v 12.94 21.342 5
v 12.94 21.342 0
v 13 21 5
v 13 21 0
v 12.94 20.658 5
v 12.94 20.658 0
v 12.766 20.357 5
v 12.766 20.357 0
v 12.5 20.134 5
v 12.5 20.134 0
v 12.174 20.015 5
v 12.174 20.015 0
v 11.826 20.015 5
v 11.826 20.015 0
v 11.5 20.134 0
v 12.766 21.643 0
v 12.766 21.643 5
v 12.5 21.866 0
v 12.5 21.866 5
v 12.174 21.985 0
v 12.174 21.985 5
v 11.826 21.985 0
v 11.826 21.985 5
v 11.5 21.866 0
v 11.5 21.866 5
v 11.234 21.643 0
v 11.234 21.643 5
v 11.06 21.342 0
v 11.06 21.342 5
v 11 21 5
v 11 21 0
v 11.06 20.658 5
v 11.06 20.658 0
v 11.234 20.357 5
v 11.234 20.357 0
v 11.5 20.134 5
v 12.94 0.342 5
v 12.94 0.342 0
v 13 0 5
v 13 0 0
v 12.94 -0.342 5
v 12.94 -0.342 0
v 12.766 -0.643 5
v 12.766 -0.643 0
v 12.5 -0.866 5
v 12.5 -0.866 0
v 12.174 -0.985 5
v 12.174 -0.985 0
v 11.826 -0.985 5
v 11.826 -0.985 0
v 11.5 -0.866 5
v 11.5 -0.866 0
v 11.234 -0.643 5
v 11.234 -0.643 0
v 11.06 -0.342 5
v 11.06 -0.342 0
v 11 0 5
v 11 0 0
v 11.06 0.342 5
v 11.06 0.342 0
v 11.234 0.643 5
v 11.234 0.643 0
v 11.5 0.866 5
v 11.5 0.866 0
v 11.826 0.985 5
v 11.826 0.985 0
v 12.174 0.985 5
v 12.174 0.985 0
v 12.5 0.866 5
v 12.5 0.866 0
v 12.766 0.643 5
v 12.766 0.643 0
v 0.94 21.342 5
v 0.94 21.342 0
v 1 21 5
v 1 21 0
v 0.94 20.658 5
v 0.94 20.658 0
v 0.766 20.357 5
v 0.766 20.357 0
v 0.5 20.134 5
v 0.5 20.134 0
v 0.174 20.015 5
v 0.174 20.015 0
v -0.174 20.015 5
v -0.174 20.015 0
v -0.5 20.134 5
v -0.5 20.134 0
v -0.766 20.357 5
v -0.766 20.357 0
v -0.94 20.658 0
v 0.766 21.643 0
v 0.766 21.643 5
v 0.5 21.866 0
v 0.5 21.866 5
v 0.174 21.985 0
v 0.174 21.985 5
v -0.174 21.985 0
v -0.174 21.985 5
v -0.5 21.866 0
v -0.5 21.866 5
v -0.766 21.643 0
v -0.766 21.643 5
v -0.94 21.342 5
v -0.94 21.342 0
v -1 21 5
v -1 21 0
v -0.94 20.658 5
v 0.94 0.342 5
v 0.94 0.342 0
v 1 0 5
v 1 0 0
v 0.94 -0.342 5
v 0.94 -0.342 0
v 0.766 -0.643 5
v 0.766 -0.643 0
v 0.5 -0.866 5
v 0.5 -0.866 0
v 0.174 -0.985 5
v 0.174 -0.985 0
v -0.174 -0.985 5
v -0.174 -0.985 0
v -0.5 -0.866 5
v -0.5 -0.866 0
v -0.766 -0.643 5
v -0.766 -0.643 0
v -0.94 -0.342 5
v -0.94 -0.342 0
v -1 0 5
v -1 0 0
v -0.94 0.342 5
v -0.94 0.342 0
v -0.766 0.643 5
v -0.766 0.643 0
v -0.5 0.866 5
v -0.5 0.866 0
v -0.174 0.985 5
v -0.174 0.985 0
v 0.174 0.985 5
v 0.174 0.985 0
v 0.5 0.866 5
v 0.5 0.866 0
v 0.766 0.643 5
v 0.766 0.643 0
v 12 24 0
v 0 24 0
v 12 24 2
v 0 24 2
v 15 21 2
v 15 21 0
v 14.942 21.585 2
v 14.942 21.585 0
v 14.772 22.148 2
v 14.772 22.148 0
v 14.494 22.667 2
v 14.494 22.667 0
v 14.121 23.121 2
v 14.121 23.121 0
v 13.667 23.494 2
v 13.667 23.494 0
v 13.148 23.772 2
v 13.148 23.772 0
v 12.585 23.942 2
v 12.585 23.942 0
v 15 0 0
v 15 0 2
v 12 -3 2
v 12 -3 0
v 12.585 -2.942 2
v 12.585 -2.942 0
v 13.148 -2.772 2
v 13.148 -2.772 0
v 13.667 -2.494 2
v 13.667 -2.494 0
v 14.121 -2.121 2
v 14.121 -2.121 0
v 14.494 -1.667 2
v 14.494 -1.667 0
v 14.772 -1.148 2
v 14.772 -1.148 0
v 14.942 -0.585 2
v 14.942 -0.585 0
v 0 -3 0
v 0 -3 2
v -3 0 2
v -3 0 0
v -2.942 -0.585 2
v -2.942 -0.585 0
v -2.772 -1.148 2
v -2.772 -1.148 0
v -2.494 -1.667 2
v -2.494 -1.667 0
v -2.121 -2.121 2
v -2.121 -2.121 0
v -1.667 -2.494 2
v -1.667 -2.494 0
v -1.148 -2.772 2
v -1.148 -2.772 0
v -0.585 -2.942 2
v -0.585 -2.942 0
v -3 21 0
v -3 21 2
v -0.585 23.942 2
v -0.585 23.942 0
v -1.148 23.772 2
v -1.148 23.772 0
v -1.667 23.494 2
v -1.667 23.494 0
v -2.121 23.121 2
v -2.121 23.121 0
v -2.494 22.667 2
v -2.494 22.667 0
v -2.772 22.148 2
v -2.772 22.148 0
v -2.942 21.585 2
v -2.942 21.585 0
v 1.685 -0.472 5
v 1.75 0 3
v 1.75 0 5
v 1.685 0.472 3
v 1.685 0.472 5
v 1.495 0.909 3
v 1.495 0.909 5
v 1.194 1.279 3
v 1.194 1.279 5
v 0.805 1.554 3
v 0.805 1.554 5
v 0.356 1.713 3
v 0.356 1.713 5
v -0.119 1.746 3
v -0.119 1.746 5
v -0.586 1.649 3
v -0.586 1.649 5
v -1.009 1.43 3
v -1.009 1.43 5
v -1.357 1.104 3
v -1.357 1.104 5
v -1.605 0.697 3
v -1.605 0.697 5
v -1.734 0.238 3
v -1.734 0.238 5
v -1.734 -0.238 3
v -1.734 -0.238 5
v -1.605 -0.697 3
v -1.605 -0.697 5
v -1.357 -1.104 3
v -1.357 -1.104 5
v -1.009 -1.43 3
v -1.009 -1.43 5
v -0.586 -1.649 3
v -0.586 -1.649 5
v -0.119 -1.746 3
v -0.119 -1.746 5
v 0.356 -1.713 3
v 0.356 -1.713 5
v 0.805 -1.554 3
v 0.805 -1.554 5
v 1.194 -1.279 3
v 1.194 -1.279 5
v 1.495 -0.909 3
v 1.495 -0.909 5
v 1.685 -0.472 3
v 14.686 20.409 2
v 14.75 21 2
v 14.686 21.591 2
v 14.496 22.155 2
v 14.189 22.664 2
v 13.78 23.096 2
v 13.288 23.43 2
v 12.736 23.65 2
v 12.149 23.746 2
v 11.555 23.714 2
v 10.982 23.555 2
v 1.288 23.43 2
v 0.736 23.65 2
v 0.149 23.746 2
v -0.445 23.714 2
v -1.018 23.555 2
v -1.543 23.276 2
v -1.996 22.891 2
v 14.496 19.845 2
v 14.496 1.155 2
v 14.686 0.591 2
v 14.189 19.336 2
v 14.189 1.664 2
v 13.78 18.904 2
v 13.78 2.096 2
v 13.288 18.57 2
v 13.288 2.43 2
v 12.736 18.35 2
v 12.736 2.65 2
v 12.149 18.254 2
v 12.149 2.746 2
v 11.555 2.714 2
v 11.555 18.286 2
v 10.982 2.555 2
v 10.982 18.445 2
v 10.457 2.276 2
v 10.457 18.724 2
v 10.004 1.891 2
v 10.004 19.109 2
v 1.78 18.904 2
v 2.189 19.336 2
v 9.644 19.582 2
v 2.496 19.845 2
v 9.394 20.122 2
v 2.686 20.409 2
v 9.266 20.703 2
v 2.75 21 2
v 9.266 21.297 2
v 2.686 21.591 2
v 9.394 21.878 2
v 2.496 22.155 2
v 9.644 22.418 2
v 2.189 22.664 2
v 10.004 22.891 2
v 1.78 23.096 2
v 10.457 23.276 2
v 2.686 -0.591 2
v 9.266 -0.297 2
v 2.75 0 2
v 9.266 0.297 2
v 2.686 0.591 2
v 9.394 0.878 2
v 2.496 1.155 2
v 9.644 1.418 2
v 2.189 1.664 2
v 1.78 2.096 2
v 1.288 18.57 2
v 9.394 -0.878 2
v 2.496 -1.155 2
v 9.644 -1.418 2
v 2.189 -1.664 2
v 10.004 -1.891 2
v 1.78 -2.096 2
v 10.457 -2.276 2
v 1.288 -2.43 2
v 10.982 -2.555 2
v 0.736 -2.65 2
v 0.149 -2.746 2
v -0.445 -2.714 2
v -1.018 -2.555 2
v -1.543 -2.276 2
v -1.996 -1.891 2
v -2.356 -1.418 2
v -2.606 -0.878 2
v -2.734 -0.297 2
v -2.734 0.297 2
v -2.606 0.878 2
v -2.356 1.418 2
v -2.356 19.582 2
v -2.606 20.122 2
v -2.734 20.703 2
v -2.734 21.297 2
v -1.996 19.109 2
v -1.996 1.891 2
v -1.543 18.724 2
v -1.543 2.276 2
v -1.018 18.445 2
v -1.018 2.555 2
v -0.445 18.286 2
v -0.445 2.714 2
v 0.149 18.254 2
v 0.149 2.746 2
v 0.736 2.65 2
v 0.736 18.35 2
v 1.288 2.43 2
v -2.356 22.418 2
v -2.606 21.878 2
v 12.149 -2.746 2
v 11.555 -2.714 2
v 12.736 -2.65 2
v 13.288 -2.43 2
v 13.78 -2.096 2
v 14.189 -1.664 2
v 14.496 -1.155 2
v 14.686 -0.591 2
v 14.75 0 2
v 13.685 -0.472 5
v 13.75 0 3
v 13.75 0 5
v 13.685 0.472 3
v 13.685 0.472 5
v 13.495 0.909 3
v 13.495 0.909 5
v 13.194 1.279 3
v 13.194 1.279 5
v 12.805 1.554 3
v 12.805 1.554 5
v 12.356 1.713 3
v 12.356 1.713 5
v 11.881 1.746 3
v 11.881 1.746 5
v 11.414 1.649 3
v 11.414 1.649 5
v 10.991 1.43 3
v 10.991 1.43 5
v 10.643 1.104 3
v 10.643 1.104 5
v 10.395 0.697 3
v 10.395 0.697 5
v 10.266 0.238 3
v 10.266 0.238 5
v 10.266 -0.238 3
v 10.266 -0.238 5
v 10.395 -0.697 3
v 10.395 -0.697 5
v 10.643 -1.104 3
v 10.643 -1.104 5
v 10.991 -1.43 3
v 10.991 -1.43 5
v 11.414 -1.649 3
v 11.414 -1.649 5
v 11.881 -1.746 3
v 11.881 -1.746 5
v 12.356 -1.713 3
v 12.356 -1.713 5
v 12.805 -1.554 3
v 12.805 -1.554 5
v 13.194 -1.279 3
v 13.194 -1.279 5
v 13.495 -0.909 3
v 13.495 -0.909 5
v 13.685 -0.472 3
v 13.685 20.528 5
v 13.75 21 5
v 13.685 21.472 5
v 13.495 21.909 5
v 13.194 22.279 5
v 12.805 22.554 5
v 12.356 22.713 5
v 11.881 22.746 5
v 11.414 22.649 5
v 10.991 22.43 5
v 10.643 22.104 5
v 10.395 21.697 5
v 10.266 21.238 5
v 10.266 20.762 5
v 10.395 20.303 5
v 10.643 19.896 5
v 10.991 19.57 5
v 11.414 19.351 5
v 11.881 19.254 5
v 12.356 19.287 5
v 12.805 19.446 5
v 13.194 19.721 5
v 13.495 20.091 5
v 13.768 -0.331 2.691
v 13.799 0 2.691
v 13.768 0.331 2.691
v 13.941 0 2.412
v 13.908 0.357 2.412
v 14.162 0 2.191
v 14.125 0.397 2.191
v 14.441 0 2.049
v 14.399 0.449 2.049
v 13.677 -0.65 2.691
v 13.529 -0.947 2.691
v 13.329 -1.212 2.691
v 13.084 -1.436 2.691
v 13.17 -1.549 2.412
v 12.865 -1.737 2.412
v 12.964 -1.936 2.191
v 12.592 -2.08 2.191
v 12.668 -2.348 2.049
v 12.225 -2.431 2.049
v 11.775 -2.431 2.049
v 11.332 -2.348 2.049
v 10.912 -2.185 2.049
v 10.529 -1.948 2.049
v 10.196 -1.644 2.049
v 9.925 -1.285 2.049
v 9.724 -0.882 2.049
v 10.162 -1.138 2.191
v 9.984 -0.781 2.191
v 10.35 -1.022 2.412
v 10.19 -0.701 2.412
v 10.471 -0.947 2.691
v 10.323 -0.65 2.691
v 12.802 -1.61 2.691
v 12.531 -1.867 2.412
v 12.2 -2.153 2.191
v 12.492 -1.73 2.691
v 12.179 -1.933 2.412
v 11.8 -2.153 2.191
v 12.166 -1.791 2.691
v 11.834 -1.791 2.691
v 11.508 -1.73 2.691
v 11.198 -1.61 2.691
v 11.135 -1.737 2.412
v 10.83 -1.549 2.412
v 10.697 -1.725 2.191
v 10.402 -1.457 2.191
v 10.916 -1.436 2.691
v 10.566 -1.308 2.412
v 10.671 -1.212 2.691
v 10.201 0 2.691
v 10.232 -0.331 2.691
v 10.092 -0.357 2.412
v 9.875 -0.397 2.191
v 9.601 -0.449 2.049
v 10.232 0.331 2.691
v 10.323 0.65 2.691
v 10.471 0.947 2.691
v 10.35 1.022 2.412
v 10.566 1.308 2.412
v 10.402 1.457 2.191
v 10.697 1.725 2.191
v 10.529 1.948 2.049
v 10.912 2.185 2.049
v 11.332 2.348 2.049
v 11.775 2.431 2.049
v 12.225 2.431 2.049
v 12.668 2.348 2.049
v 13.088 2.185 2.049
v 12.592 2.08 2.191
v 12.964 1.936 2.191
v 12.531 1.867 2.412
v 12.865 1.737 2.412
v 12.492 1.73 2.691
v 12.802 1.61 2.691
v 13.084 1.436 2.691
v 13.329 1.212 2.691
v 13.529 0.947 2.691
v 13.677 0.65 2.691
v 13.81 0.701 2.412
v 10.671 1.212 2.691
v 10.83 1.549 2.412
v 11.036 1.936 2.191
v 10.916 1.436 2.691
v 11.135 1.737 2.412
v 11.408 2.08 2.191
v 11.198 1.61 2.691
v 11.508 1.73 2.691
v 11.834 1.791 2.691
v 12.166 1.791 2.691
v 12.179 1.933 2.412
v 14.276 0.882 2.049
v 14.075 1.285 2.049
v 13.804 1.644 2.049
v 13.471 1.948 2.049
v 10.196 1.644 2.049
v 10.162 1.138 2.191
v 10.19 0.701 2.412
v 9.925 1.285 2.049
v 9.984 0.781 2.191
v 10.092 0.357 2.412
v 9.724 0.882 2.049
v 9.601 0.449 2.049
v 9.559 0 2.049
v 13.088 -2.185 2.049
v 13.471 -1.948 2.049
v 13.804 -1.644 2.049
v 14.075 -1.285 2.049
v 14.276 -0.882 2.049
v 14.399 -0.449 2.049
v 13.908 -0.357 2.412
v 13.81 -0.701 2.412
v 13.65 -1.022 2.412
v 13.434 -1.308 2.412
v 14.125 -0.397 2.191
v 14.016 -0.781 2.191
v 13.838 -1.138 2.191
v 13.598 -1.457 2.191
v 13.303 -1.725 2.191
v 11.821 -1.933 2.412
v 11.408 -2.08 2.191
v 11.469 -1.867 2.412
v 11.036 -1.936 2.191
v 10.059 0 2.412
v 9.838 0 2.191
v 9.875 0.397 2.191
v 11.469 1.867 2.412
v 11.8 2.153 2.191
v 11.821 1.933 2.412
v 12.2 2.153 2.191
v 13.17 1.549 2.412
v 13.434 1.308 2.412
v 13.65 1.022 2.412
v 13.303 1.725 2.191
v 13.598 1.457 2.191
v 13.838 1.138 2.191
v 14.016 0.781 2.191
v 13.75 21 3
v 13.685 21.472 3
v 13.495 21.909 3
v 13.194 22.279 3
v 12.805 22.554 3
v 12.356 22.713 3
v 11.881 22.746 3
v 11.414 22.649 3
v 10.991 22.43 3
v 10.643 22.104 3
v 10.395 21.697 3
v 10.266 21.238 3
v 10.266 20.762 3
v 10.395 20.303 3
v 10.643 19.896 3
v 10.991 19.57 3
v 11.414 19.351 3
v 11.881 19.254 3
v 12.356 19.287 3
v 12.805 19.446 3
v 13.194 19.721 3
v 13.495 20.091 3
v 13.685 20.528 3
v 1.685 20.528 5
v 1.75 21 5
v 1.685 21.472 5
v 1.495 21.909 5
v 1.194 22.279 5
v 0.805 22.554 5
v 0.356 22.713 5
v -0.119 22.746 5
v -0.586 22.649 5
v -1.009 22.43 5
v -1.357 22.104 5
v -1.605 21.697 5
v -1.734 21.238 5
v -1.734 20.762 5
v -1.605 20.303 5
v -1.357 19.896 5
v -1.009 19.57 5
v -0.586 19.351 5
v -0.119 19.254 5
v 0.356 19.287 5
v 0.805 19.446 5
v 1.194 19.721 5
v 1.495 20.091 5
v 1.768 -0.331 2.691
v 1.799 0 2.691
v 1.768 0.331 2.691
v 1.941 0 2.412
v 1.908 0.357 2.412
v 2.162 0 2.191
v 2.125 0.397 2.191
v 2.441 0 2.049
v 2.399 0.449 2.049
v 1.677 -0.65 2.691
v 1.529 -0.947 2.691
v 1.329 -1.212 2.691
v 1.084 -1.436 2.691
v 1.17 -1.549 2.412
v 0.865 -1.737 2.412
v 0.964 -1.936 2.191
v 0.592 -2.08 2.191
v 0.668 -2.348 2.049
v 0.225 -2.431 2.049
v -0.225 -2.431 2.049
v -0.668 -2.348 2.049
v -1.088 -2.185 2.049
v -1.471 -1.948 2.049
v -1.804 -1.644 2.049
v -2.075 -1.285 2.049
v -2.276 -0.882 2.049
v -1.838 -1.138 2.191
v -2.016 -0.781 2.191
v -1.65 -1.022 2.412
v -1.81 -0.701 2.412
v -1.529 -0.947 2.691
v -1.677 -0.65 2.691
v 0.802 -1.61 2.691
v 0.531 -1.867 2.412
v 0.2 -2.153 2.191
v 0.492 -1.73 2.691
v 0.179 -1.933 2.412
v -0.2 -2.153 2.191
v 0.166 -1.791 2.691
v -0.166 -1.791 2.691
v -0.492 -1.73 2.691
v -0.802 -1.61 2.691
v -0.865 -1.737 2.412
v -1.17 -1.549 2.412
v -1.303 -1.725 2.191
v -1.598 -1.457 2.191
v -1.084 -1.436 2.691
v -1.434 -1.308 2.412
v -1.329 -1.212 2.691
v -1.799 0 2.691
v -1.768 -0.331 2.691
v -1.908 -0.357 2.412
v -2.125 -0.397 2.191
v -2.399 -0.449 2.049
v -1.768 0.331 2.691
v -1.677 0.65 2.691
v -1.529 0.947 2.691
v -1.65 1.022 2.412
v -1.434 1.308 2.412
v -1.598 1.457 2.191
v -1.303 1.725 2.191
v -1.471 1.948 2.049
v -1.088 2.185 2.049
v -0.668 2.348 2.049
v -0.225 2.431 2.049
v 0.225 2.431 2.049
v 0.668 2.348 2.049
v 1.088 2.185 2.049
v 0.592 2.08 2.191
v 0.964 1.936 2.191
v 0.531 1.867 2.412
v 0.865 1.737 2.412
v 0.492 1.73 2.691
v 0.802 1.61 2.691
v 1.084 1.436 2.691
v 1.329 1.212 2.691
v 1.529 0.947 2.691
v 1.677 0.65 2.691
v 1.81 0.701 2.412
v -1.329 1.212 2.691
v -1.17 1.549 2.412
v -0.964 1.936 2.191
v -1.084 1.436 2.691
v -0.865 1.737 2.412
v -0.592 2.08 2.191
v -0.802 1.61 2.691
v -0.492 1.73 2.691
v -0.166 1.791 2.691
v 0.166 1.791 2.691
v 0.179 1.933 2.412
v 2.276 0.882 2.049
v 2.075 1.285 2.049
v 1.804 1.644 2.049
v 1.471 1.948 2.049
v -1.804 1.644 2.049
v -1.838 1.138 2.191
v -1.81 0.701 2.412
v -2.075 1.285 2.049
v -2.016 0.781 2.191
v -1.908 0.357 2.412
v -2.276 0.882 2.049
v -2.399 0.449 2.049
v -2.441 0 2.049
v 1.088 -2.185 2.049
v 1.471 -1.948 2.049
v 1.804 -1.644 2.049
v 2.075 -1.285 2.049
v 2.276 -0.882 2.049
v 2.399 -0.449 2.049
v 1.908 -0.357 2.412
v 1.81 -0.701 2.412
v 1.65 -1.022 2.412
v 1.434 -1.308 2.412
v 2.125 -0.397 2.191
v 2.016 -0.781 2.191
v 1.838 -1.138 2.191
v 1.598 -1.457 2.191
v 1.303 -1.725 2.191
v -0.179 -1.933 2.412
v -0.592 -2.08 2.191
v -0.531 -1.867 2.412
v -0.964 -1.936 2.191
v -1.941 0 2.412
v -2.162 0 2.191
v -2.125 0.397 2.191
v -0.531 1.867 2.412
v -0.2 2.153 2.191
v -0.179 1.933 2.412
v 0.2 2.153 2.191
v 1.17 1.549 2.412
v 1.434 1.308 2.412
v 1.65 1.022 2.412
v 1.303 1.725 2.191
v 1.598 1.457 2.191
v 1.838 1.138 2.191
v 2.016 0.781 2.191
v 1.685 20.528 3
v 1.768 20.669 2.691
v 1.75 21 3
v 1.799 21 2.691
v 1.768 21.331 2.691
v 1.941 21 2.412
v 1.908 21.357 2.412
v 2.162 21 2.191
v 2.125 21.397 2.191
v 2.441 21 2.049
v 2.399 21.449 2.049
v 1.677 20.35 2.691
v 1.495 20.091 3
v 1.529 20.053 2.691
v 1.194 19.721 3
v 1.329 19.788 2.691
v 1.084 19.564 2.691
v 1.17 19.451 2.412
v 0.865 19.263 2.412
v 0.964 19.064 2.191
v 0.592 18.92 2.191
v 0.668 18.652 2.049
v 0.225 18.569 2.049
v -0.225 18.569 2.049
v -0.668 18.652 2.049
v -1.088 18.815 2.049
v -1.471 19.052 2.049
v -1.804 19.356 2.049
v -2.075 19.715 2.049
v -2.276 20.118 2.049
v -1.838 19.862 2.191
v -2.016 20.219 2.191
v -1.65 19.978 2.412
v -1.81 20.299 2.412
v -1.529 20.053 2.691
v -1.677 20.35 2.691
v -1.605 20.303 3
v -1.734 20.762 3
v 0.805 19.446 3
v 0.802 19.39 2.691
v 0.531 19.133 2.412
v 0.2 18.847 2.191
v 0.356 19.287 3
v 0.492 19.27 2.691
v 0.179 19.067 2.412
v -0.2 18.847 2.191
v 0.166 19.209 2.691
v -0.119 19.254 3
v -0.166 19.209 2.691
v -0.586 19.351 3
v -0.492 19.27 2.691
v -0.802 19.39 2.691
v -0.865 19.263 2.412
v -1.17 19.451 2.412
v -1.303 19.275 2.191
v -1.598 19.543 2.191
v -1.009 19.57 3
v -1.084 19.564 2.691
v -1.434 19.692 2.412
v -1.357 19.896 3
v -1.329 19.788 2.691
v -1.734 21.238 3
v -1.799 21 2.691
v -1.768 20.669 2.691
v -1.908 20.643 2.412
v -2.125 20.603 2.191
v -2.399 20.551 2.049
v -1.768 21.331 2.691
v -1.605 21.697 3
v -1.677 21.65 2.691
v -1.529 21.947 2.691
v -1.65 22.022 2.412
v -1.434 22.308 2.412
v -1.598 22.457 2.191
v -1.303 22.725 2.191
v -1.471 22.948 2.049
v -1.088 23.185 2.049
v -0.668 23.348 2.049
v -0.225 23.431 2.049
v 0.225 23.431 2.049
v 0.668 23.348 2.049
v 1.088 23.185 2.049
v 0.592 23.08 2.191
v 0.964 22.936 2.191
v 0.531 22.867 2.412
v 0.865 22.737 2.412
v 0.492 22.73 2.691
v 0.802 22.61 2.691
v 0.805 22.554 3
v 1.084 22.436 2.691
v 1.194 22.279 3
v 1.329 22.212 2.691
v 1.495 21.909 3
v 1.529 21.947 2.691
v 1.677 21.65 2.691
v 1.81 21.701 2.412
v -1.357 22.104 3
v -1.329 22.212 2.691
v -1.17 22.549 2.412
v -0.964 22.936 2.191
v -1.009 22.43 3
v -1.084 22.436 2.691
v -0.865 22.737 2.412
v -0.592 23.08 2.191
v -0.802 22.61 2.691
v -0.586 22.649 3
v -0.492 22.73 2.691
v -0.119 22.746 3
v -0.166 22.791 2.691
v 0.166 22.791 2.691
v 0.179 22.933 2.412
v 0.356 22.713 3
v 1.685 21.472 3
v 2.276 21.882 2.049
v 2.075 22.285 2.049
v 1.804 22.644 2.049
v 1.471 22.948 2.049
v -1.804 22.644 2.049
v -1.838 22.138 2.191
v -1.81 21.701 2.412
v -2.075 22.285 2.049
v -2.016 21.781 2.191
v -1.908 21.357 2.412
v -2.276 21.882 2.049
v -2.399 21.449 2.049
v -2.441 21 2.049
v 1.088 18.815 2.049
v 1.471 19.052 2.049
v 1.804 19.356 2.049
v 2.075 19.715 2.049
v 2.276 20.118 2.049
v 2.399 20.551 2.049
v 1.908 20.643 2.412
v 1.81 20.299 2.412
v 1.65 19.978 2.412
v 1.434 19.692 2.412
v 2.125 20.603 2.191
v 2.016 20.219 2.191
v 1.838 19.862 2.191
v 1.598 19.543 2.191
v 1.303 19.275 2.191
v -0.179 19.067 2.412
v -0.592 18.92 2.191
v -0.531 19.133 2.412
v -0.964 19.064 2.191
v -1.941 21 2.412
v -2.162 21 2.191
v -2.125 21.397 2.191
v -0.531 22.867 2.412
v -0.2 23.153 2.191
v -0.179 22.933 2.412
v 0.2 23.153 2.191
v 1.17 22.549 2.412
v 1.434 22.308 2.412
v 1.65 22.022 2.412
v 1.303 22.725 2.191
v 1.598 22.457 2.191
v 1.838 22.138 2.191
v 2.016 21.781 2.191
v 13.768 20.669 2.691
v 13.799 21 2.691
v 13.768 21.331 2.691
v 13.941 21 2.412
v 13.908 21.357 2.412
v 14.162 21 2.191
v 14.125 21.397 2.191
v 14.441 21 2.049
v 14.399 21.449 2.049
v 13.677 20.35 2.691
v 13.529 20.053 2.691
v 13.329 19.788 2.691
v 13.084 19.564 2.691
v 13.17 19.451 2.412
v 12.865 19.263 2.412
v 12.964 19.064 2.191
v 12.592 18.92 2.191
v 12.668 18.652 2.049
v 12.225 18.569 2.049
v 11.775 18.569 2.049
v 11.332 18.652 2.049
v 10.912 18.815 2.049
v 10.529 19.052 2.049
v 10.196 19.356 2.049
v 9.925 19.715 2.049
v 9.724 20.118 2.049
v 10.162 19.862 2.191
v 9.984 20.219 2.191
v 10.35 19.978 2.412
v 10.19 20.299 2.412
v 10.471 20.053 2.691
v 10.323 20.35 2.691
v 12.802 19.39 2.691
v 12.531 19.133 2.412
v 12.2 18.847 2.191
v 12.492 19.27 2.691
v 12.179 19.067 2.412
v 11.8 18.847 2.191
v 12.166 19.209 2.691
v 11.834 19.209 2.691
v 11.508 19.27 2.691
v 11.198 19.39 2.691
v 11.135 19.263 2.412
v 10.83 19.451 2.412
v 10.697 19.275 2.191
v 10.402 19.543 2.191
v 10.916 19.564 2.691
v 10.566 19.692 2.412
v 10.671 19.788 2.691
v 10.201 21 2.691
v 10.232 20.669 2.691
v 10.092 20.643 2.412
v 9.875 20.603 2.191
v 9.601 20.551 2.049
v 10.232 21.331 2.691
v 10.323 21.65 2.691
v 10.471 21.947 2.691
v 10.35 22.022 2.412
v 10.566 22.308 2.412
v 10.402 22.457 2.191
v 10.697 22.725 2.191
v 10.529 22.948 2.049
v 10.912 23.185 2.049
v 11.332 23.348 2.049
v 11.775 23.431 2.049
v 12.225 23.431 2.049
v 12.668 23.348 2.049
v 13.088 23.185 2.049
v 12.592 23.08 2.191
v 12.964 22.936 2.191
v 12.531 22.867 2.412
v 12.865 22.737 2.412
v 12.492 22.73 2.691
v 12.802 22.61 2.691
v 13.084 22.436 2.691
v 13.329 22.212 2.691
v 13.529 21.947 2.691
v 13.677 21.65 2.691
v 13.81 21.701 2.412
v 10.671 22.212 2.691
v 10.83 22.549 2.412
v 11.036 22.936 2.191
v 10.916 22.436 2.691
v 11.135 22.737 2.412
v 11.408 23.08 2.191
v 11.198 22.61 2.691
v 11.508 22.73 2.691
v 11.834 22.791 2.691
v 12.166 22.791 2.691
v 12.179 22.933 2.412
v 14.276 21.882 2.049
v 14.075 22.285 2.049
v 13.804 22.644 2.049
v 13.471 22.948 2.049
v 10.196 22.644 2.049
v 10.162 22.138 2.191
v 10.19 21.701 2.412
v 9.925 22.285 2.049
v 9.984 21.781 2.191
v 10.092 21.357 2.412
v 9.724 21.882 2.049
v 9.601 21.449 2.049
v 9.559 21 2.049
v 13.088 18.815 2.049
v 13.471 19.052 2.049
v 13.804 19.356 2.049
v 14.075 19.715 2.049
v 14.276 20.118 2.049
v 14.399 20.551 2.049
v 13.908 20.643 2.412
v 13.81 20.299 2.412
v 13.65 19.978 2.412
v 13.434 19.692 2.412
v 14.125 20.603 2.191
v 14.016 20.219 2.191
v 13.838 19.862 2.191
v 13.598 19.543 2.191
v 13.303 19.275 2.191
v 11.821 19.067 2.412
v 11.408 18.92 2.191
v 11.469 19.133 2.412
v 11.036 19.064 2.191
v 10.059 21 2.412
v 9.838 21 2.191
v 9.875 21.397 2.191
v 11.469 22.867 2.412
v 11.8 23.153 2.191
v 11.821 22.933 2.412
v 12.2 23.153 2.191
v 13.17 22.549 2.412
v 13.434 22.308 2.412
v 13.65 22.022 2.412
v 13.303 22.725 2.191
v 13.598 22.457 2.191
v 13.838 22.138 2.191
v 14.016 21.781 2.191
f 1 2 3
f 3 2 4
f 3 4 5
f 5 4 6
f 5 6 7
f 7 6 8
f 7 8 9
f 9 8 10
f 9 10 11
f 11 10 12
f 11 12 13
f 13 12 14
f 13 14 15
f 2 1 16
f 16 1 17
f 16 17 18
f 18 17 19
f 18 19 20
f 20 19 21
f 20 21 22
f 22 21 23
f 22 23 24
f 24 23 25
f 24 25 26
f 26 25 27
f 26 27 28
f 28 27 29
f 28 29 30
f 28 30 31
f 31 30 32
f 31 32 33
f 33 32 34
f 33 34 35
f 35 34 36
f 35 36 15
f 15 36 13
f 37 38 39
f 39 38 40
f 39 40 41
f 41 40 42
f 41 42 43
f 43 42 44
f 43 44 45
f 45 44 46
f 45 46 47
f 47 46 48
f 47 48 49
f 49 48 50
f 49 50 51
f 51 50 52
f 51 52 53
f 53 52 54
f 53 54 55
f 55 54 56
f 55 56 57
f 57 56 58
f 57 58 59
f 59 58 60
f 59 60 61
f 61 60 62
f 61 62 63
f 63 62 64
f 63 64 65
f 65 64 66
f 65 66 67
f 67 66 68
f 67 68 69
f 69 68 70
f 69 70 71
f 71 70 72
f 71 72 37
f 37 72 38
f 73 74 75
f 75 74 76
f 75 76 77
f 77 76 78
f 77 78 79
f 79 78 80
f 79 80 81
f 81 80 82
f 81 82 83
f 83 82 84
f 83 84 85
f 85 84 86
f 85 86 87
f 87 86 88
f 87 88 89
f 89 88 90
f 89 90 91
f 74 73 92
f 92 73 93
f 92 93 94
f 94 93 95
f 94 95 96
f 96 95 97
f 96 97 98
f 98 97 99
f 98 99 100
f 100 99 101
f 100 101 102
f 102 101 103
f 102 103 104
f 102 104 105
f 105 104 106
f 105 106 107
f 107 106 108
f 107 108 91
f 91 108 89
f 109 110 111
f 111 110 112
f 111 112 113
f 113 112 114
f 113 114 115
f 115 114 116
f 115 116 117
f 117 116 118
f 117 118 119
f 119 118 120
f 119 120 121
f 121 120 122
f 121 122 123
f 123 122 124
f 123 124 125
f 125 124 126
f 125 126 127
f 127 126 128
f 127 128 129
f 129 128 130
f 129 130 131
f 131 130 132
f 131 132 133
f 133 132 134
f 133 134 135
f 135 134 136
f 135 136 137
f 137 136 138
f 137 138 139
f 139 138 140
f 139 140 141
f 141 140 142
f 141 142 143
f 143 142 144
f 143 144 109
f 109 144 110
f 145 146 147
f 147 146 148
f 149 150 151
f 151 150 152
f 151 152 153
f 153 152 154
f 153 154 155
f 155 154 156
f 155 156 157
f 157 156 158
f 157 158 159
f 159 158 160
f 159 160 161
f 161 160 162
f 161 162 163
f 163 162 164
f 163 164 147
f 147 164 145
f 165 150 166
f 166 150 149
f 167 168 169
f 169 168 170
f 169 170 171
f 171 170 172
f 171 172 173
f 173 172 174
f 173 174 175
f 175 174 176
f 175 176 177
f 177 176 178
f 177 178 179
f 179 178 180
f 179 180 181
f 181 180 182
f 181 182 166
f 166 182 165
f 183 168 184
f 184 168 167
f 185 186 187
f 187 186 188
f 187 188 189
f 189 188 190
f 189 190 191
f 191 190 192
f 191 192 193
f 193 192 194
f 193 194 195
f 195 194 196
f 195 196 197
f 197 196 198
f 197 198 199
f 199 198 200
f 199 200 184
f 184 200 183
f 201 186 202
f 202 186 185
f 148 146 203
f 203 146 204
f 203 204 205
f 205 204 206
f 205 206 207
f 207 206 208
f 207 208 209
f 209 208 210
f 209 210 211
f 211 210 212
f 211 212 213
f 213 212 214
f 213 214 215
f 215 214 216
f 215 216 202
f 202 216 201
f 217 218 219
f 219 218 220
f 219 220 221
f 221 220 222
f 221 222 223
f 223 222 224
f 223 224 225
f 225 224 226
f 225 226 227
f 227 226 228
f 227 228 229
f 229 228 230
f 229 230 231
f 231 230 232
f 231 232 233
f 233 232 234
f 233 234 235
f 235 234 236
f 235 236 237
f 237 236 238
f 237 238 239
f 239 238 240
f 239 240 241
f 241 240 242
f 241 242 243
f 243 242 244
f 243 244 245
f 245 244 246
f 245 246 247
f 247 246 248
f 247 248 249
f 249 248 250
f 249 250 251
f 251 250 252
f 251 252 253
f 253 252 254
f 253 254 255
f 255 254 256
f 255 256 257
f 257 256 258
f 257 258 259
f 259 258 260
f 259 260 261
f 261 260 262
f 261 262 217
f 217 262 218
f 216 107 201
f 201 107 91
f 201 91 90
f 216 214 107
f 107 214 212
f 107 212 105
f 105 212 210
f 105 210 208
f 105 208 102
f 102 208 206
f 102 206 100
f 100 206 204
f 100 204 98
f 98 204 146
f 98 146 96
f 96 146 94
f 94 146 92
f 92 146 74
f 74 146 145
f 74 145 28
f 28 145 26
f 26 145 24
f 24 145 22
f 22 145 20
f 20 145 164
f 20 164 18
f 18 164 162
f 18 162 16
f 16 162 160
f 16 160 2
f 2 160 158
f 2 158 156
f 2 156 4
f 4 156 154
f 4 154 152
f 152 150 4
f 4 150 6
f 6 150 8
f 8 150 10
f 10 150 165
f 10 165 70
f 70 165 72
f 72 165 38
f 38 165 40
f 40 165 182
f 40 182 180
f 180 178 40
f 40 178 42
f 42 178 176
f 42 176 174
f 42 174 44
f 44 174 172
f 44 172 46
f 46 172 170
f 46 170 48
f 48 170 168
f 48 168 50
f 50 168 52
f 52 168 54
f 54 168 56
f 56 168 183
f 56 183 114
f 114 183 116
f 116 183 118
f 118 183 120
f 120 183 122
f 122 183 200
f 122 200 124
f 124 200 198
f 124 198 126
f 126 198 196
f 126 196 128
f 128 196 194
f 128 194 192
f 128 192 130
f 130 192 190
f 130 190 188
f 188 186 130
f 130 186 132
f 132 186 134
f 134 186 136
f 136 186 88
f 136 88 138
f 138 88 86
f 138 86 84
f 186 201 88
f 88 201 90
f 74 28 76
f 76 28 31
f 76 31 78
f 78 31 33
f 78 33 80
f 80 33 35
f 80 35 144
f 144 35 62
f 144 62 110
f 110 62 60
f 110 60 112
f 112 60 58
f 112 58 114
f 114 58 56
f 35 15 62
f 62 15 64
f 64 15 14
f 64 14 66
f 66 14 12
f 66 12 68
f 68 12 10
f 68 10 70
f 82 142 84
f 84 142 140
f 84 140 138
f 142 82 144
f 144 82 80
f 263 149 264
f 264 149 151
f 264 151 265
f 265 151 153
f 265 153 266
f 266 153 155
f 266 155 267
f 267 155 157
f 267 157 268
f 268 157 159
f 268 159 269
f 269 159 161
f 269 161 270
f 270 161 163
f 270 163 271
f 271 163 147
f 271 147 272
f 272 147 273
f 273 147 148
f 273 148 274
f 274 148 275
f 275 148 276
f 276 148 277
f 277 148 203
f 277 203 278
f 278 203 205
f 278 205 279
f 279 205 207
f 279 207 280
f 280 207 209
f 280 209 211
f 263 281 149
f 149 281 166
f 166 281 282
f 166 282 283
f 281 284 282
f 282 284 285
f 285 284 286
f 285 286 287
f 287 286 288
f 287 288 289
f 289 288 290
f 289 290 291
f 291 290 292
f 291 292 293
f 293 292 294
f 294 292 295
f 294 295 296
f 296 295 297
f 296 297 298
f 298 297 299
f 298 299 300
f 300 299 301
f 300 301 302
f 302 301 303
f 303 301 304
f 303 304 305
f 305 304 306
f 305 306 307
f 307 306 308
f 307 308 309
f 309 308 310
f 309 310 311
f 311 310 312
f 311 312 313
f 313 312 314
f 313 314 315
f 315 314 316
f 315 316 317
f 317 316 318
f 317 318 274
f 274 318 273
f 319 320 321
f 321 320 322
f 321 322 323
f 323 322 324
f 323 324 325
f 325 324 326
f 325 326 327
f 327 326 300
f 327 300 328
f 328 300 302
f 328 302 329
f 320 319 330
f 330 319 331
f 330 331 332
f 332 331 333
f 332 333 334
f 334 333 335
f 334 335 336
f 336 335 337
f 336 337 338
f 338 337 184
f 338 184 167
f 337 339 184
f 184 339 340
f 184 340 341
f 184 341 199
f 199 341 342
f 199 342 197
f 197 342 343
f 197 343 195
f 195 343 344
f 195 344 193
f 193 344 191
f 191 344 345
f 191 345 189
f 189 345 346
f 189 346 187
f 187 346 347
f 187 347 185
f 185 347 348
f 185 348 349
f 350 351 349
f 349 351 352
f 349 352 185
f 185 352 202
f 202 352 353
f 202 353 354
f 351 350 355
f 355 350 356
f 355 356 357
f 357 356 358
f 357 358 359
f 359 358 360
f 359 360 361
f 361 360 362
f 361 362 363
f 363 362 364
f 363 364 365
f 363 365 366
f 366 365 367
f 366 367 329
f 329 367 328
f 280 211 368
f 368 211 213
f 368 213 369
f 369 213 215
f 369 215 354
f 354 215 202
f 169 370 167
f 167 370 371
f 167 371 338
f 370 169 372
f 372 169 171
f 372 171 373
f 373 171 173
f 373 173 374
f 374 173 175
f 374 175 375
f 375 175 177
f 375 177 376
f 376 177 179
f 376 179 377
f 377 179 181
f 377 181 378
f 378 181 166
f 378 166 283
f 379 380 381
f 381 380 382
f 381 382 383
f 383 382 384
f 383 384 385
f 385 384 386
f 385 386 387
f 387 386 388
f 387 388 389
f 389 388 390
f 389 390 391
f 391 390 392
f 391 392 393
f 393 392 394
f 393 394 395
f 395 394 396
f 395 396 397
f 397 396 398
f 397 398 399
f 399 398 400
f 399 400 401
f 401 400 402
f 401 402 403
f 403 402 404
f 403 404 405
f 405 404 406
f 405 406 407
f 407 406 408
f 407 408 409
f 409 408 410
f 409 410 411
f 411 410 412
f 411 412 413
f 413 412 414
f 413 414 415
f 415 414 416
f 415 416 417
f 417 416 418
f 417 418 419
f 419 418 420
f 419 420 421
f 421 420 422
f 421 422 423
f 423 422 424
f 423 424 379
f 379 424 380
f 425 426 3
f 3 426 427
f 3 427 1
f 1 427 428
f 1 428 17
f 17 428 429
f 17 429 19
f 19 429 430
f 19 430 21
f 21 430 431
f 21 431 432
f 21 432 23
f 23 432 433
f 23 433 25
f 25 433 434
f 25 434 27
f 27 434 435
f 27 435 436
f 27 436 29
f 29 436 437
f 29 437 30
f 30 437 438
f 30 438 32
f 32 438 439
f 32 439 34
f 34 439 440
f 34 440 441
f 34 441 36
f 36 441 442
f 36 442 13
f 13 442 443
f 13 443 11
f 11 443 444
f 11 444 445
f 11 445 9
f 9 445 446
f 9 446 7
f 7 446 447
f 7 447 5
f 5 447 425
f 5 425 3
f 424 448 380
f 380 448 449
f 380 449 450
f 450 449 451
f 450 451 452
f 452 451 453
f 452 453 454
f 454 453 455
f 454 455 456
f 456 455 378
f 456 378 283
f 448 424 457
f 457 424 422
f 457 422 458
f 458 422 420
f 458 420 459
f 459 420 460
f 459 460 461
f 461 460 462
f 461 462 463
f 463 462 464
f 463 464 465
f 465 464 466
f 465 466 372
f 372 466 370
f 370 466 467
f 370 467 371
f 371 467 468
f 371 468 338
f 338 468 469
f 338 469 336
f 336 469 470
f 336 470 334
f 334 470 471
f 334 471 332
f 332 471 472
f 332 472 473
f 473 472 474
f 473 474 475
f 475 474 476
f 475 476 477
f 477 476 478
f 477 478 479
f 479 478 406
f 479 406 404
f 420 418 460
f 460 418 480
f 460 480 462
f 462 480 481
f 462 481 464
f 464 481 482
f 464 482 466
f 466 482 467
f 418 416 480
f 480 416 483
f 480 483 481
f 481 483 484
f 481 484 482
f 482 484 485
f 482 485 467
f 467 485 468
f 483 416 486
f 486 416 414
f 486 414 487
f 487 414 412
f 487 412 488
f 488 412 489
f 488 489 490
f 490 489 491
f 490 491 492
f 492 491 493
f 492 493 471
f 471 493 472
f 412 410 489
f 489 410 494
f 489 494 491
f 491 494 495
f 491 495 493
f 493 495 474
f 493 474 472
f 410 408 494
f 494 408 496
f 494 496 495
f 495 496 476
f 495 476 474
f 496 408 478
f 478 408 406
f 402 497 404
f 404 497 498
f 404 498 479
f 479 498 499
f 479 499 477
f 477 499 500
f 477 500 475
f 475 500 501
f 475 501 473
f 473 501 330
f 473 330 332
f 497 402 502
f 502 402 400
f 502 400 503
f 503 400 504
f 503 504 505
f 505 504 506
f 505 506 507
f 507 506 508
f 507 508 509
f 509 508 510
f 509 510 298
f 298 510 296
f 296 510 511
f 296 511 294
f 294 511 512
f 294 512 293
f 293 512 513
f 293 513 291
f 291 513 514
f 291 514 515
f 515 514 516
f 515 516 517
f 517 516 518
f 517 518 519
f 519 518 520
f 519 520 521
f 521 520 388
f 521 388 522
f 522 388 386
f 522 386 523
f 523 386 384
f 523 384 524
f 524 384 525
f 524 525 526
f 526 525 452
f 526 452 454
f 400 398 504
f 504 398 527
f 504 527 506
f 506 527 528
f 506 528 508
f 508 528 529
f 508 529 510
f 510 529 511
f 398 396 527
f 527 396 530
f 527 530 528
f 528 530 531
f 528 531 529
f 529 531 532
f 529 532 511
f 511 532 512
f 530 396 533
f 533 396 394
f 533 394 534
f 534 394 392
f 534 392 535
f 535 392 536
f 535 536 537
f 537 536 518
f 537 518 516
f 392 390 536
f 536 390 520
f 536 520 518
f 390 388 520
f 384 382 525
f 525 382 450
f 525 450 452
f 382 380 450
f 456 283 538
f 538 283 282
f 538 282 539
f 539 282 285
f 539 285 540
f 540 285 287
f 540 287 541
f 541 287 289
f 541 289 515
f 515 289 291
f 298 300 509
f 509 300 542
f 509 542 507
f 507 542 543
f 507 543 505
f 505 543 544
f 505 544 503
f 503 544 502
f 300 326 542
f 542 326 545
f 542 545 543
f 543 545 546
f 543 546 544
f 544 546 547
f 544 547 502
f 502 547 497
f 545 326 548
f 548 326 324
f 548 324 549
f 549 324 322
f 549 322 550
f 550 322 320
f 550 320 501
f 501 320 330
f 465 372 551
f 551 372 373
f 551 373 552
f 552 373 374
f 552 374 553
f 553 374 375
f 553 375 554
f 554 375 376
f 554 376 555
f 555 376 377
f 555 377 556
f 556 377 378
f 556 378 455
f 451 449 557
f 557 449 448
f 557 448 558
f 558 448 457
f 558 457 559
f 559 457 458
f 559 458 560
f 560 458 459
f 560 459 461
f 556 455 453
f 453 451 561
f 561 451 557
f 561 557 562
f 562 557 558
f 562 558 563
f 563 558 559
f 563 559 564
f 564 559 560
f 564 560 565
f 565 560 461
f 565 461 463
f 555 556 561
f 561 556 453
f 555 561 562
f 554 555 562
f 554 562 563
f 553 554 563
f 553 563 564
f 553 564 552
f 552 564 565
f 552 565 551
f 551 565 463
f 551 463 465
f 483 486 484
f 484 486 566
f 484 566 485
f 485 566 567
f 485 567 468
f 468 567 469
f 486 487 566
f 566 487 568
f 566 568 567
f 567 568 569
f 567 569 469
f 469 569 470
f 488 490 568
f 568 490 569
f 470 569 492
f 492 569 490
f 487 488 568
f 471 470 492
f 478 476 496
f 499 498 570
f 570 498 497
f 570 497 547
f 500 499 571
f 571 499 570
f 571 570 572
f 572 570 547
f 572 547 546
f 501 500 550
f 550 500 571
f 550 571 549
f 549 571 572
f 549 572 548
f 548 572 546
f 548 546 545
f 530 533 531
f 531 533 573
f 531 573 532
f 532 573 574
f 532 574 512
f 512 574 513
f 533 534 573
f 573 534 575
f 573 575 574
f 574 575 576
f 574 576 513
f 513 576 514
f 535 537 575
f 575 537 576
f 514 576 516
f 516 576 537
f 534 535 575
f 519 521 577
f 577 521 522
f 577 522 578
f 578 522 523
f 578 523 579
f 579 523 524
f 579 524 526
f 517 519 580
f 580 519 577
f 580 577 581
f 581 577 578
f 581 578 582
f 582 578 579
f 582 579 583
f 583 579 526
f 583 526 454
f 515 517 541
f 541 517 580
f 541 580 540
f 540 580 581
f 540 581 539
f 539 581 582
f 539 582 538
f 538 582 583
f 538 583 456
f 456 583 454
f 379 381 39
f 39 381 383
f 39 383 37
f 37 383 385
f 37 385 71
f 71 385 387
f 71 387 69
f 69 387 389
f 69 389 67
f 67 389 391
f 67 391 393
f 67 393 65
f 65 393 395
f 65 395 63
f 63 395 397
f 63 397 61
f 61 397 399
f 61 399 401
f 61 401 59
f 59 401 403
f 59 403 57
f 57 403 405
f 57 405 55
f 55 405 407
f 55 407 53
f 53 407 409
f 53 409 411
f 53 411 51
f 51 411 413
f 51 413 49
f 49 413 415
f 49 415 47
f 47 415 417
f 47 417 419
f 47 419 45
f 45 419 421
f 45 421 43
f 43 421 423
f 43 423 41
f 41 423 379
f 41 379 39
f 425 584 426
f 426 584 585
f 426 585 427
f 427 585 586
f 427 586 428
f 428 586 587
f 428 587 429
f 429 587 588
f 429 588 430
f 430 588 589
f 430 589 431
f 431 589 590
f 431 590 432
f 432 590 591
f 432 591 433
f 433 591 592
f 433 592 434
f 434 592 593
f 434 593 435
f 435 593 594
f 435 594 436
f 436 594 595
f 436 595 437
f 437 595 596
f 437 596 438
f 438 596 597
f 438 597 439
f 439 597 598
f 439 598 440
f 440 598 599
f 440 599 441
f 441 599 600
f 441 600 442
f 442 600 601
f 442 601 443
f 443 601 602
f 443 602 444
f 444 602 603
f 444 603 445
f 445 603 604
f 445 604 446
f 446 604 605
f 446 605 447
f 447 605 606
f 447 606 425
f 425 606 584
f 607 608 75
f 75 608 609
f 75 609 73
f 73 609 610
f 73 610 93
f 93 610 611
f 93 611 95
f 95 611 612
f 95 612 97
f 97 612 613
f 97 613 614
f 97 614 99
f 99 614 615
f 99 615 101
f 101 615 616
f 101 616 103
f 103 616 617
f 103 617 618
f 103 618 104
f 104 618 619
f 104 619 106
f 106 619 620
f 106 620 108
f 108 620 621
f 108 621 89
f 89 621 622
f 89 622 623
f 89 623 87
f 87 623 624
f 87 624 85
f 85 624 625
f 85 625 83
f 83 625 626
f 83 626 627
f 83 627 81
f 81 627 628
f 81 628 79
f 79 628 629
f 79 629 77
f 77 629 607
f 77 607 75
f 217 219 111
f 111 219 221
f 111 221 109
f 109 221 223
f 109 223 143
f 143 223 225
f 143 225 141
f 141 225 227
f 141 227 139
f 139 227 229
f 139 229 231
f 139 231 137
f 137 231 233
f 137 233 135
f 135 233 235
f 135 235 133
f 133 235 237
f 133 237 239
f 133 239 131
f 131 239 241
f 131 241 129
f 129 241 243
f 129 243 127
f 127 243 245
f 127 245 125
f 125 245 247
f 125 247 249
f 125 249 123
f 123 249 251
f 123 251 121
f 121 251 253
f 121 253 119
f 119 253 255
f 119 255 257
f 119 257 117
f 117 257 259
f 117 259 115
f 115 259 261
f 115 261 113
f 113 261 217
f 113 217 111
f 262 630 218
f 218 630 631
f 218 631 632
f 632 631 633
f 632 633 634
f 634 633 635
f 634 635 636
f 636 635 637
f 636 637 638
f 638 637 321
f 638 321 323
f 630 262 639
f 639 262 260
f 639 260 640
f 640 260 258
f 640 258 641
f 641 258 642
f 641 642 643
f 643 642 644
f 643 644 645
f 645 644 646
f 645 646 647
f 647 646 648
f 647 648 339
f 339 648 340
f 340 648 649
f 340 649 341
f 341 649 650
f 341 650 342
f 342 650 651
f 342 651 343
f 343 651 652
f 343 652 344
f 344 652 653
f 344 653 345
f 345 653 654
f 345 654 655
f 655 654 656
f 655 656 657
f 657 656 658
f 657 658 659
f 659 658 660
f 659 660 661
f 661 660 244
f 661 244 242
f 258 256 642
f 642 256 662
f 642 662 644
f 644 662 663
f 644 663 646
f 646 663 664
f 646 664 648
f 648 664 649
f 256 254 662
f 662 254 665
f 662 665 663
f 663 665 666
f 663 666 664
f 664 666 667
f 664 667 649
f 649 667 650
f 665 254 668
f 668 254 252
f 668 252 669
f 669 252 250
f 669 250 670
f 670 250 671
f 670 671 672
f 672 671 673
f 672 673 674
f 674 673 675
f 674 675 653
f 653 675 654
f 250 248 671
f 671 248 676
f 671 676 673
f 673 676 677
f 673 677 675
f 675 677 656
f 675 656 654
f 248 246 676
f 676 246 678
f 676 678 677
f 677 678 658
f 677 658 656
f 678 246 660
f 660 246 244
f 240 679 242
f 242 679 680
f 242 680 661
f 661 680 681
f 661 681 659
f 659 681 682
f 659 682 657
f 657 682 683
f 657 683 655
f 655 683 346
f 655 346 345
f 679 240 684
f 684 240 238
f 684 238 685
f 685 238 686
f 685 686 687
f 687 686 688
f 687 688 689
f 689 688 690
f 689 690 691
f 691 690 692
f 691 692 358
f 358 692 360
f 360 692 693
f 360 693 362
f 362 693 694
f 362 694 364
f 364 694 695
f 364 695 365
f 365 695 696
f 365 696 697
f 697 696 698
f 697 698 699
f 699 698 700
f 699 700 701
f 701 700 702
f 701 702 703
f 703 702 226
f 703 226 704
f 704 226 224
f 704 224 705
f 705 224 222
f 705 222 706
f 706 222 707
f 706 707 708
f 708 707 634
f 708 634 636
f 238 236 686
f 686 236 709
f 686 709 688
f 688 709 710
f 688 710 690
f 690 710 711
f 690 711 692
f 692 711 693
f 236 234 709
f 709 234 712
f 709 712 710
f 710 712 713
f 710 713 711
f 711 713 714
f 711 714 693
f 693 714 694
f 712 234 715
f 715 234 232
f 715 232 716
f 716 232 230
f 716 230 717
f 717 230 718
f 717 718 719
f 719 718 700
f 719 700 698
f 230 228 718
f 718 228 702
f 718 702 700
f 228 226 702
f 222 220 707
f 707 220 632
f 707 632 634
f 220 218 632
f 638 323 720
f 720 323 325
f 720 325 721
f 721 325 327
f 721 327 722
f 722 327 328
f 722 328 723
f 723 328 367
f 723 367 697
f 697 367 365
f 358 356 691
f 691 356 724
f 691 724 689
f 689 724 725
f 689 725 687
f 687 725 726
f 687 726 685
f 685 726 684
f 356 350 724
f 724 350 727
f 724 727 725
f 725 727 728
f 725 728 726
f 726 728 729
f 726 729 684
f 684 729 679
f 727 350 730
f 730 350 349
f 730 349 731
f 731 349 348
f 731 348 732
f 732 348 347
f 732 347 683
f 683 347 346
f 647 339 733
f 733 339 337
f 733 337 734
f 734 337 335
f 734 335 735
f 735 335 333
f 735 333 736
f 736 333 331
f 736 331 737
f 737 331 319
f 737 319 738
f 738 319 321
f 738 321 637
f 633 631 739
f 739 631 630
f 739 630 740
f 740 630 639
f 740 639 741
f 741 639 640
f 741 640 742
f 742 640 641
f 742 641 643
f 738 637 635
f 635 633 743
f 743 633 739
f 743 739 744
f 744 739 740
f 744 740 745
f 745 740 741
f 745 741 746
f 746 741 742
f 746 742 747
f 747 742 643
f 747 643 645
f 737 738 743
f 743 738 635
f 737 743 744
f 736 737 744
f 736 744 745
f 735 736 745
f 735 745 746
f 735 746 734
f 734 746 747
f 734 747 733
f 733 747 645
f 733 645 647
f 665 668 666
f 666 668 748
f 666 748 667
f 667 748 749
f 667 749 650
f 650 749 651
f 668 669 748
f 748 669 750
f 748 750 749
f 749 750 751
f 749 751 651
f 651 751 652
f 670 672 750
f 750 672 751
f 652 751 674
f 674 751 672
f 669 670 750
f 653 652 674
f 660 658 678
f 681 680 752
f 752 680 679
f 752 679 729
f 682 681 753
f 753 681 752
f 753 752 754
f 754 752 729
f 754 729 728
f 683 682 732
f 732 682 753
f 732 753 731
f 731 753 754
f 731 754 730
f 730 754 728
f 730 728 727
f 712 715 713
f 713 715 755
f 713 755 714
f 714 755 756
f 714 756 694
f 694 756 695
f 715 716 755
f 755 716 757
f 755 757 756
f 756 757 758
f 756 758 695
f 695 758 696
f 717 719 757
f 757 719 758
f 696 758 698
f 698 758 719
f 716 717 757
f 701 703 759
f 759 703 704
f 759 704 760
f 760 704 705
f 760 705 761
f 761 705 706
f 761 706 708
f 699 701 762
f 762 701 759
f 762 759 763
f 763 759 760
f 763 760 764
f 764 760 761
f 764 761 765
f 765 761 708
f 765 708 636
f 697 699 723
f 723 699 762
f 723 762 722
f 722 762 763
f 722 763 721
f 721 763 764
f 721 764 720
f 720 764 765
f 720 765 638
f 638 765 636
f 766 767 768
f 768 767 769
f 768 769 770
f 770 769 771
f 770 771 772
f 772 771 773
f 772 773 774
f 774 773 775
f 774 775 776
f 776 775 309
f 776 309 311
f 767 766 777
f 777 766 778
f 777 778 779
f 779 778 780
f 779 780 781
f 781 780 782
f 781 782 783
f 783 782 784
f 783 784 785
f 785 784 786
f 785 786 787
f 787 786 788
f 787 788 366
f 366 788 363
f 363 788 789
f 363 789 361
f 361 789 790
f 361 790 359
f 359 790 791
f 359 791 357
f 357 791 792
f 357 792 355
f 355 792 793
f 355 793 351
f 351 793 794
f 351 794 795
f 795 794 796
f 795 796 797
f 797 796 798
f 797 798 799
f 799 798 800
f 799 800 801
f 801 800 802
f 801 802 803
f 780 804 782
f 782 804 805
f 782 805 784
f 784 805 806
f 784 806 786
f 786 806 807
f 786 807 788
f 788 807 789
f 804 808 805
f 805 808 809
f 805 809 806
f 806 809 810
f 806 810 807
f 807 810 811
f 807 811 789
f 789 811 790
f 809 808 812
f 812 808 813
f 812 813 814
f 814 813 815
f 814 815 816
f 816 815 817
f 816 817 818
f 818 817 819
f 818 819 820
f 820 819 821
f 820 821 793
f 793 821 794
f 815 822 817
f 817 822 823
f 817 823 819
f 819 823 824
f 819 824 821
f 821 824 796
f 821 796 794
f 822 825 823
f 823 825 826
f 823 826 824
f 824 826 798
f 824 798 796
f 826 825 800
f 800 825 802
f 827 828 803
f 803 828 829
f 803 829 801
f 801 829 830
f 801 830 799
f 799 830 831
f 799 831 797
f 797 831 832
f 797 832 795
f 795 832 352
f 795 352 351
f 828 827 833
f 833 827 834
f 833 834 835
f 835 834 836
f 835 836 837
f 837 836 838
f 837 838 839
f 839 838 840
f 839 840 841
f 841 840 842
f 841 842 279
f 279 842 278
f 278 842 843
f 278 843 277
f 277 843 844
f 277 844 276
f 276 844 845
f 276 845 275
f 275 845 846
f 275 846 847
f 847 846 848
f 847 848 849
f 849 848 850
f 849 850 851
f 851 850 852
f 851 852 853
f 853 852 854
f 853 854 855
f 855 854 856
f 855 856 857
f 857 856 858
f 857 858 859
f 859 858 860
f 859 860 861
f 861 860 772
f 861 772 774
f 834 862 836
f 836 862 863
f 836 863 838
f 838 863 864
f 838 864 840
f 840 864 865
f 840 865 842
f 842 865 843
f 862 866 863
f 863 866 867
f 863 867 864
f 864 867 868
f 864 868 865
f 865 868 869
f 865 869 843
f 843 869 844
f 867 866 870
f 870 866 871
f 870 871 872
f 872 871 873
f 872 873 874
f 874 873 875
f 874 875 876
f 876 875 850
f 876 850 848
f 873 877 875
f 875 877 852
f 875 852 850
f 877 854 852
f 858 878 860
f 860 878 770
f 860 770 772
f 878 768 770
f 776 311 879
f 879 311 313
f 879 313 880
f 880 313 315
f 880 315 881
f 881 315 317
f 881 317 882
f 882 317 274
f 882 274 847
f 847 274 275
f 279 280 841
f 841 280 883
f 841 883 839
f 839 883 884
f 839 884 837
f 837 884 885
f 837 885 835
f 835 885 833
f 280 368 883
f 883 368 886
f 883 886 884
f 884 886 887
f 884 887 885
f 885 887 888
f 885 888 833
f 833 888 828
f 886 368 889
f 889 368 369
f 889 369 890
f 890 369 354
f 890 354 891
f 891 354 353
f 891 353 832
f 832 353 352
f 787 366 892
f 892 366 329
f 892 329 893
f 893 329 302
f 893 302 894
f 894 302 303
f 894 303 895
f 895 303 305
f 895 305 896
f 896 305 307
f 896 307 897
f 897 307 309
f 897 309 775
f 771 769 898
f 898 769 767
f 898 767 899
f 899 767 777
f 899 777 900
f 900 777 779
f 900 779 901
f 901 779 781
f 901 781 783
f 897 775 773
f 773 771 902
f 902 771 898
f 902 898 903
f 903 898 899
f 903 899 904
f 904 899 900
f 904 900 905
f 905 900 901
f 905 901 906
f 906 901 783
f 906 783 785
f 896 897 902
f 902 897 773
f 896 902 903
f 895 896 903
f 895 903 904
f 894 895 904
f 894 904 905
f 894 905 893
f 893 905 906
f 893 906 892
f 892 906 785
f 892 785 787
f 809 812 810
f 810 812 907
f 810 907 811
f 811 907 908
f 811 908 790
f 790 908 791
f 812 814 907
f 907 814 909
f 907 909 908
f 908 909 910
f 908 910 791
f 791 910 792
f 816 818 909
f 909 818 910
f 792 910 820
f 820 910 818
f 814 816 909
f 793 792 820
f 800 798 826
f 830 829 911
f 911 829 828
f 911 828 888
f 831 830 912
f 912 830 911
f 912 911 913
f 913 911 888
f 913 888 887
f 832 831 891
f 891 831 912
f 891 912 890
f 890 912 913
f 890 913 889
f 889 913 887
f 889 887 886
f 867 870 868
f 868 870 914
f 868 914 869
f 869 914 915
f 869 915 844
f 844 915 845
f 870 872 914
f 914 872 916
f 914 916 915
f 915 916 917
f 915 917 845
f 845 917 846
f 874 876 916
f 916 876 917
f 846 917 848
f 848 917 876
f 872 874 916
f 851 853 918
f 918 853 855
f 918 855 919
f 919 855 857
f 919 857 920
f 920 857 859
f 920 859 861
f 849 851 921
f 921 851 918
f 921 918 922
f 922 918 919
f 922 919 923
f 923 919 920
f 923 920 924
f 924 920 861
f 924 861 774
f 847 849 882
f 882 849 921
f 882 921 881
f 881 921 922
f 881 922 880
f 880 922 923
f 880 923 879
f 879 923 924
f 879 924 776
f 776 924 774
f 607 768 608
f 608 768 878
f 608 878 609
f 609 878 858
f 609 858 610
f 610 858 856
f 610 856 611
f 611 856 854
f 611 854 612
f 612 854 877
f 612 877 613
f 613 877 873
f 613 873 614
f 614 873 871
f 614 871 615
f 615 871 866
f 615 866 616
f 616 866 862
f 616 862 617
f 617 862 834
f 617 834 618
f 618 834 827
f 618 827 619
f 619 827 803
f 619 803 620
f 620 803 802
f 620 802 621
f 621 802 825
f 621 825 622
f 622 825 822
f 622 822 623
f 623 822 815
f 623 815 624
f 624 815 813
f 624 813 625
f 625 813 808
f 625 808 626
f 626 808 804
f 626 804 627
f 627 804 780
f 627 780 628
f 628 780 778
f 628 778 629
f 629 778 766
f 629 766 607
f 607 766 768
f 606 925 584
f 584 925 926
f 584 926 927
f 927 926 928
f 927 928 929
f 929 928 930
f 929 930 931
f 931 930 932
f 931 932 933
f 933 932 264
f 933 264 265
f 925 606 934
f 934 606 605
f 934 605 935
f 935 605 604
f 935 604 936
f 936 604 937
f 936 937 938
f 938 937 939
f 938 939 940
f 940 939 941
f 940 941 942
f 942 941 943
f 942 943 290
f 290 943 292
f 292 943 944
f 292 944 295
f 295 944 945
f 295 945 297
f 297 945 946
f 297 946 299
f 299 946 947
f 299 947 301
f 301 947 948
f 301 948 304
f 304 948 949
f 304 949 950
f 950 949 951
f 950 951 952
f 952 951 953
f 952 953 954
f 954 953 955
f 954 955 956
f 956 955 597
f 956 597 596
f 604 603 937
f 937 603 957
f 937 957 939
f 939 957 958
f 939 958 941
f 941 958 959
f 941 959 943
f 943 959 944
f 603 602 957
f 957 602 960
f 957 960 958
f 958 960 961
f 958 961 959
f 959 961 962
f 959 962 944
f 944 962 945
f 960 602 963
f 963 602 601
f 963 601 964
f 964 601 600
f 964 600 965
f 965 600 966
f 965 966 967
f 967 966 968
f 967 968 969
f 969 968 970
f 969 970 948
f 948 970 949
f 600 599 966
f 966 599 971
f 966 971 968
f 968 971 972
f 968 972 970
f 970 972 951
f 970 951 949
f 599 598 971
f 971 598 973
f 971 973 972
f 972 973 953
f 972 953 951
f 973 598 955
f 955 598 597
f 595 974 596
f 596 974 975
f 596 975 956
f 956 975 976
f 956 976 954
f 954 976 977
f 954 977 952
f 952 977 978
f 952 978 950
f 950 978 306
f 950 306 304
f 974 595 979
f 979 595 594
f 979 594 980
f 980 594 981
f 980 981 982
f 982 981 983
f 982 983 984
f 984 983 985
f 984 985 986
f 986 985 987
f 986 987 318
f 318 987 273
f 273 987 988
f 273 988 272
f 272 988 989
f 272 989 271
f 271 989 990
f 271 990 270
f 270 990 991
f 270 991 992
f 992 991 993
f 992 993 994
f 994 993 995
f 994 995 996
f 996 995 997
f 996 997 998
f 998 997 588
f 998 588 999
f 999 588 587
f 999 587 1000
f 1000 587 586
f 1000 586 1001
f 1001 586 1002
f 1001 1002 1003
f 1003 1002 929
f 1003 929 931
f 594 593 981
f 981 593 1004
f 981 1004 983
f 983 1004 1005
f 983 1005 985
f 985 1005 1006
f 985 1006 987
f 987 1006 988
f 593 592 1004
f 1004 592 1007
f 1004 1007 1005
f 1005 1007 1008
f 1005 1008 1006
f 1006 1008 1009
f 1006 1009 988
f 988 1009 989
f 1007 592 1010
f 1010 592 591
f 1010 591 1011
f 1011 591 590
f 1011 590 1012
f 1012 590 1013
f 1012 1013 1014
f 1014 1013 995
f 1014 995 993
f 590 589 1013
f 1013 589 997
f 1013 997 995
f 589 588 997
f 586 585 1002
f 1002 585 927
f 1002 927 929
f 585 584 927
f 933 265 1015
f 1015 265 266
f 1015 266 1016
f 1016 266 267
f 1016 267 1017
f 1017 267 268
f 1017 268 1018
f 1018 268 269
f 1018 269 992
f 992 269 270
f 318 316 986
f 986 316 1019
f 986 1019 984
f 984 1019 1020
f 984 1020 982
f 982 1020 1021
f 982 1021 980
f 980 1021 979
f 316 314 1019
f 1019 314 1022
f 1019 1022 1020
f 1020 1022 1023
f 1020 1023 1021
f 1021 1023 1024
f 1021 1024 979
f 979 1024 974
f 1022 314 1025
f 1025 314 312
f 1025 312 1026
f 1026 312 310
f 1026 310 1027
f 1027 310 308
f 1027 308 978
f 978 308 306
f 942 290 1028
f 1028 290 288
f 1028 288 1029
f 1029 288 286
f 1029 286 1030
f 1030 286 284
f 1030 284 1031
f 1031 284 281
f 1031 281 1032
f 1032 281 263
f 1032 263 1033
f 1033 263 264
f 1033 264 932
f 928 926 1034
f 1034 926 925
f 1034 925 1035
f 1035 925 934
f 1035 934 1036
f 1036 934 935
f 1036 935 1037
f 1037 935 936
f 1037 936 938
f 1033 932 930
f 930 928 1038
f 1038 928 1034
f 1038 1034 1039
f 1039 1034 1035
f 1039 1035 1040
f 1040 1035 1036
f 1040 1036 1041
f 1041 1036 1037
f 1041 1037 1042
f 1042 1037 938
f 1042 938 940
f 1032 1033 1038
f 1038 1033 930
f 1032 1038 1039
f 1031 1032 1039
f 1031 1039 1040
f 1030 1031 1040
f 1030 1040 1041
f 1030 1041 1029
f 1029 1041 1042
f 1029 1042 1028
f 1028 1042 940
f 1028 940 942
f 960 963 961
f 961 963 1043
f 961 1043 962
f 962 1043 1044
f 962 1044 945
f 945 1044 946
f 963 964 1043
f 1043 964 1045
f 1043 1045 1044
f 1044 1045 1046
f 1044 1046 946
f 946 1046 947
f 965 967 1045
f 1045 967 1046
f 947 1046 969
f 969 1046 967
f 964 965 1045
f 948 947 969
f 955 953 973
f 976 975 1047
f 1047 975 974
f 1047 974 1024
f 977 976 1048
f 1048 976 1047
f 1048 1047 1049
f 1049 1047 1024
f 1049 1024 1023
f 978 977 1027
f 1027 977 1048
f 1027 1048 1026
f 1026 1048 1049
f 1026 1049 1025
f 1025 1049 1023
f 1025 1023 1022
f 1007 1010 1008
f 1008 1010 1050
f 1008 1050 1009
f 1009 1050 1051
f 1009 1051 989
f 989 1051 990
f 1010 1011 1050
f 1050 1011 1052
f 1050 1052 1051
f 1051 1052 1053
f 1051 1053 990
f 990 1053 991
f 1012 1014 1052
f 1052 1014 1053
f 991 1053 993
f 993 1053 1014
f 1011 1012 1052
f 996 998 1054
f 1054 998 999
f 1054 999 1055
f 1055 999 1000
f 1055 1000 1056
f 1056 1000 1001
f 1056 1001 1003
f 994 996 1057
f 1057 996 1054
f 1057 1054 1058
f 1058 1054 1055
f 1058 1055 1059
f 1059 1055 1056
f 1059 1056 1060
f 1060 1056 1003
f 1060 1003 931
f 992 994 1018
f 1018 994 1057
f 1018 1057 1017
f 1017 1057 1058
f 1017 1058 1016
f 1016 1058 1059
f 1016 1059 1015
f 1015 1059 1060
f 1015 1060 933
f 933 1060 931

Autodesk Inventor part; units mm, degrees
ref_plane "YZ Plane" through (0, 0, 0) normal (1, 0, 0) x (0, 1, 0)
ref_plane "XZ Plane" through (0, 0, 0) normal (0, 1, 0) x (-1, 0, 0)
ref_plane "XY Plane" through (0, 0, 0) normal (0, 0, 1) x (1, 0, 0)
sketch "Náčrt1" plane through (0, 0, 0) normal (0, 0, 1) x (1, 0, 0)
  circle A0 centre (0, 0) radius 1
  circle A1 centre (12, 0) radius 1
  circle A2 centre (0, 21) radius 1
  circle A3 centre (12, 21) radius 1
  line L0 (12, 24) -> (0, 24)
  arc A4 (0, 24) -> (-3, 21) centre (0, 21) ccw
  line L1 (-3, 21) -> (-3, 0)
  arc A5 (-3, 0) -> (0, -3) centre (0, 0) ccw
  line L2 (0, -3) -> (12, -3)
  arc A6 (12, -3) -> (15, 0) centre (12, 0) ccw
  line L3 (15, 0) -> (15, 21)
  arc A7 (15, 21) -> (12, 24) centre (12, 21) ccw
  dimension "d0" = 2
  dimension "d1" = 10
extrude "Vysunutí1" add sketch "Náčrt1" along normal blind 2
sketch "Náčrt2" plane through (0, 0, 2) normal (0, 0, 1) x (1, 0, 0)
  circle A0 centre (0, 0) radius 1 projected
  circle A1 centre (0, 0) radius 1
  line L0 (0, -3) -> (12, -3) projected
  circle A2 centre (12, 0) radius 1
  line L1 (-3, 21) -> (-3, 0) projected
  line L2 (15, 0) -> (15, 21) projected
  circle A3 centre (0, 21) radius 1
  circle A4 centre (12, 21) radius 1
  circle A5 centre (0, 21) radius 1.75
  circle A6 centre (12, 21) radius 1.75
  circle A7 centre (12, 0) radius 1.75
  circle A8 centre (0, 0) radius 1.75
  dimension "d10" = 0.75
  dimension "d11" = 0.75
  dimension "d12" = 0.75
  dimension "d14" = 0.75
extrude "Vysunutí2" add sketch "Náčrt2" along normal blind 3
fillet "Zaoblení1" radius 1 1 edges at (-1.75, 0, 2)
fillet "Zaoblení2" radius 1 3 edges at (-1.75, 21, 2) (10.25, 21, 2) (10.25, 0, 2)
properties part number "drzak_kamery"
